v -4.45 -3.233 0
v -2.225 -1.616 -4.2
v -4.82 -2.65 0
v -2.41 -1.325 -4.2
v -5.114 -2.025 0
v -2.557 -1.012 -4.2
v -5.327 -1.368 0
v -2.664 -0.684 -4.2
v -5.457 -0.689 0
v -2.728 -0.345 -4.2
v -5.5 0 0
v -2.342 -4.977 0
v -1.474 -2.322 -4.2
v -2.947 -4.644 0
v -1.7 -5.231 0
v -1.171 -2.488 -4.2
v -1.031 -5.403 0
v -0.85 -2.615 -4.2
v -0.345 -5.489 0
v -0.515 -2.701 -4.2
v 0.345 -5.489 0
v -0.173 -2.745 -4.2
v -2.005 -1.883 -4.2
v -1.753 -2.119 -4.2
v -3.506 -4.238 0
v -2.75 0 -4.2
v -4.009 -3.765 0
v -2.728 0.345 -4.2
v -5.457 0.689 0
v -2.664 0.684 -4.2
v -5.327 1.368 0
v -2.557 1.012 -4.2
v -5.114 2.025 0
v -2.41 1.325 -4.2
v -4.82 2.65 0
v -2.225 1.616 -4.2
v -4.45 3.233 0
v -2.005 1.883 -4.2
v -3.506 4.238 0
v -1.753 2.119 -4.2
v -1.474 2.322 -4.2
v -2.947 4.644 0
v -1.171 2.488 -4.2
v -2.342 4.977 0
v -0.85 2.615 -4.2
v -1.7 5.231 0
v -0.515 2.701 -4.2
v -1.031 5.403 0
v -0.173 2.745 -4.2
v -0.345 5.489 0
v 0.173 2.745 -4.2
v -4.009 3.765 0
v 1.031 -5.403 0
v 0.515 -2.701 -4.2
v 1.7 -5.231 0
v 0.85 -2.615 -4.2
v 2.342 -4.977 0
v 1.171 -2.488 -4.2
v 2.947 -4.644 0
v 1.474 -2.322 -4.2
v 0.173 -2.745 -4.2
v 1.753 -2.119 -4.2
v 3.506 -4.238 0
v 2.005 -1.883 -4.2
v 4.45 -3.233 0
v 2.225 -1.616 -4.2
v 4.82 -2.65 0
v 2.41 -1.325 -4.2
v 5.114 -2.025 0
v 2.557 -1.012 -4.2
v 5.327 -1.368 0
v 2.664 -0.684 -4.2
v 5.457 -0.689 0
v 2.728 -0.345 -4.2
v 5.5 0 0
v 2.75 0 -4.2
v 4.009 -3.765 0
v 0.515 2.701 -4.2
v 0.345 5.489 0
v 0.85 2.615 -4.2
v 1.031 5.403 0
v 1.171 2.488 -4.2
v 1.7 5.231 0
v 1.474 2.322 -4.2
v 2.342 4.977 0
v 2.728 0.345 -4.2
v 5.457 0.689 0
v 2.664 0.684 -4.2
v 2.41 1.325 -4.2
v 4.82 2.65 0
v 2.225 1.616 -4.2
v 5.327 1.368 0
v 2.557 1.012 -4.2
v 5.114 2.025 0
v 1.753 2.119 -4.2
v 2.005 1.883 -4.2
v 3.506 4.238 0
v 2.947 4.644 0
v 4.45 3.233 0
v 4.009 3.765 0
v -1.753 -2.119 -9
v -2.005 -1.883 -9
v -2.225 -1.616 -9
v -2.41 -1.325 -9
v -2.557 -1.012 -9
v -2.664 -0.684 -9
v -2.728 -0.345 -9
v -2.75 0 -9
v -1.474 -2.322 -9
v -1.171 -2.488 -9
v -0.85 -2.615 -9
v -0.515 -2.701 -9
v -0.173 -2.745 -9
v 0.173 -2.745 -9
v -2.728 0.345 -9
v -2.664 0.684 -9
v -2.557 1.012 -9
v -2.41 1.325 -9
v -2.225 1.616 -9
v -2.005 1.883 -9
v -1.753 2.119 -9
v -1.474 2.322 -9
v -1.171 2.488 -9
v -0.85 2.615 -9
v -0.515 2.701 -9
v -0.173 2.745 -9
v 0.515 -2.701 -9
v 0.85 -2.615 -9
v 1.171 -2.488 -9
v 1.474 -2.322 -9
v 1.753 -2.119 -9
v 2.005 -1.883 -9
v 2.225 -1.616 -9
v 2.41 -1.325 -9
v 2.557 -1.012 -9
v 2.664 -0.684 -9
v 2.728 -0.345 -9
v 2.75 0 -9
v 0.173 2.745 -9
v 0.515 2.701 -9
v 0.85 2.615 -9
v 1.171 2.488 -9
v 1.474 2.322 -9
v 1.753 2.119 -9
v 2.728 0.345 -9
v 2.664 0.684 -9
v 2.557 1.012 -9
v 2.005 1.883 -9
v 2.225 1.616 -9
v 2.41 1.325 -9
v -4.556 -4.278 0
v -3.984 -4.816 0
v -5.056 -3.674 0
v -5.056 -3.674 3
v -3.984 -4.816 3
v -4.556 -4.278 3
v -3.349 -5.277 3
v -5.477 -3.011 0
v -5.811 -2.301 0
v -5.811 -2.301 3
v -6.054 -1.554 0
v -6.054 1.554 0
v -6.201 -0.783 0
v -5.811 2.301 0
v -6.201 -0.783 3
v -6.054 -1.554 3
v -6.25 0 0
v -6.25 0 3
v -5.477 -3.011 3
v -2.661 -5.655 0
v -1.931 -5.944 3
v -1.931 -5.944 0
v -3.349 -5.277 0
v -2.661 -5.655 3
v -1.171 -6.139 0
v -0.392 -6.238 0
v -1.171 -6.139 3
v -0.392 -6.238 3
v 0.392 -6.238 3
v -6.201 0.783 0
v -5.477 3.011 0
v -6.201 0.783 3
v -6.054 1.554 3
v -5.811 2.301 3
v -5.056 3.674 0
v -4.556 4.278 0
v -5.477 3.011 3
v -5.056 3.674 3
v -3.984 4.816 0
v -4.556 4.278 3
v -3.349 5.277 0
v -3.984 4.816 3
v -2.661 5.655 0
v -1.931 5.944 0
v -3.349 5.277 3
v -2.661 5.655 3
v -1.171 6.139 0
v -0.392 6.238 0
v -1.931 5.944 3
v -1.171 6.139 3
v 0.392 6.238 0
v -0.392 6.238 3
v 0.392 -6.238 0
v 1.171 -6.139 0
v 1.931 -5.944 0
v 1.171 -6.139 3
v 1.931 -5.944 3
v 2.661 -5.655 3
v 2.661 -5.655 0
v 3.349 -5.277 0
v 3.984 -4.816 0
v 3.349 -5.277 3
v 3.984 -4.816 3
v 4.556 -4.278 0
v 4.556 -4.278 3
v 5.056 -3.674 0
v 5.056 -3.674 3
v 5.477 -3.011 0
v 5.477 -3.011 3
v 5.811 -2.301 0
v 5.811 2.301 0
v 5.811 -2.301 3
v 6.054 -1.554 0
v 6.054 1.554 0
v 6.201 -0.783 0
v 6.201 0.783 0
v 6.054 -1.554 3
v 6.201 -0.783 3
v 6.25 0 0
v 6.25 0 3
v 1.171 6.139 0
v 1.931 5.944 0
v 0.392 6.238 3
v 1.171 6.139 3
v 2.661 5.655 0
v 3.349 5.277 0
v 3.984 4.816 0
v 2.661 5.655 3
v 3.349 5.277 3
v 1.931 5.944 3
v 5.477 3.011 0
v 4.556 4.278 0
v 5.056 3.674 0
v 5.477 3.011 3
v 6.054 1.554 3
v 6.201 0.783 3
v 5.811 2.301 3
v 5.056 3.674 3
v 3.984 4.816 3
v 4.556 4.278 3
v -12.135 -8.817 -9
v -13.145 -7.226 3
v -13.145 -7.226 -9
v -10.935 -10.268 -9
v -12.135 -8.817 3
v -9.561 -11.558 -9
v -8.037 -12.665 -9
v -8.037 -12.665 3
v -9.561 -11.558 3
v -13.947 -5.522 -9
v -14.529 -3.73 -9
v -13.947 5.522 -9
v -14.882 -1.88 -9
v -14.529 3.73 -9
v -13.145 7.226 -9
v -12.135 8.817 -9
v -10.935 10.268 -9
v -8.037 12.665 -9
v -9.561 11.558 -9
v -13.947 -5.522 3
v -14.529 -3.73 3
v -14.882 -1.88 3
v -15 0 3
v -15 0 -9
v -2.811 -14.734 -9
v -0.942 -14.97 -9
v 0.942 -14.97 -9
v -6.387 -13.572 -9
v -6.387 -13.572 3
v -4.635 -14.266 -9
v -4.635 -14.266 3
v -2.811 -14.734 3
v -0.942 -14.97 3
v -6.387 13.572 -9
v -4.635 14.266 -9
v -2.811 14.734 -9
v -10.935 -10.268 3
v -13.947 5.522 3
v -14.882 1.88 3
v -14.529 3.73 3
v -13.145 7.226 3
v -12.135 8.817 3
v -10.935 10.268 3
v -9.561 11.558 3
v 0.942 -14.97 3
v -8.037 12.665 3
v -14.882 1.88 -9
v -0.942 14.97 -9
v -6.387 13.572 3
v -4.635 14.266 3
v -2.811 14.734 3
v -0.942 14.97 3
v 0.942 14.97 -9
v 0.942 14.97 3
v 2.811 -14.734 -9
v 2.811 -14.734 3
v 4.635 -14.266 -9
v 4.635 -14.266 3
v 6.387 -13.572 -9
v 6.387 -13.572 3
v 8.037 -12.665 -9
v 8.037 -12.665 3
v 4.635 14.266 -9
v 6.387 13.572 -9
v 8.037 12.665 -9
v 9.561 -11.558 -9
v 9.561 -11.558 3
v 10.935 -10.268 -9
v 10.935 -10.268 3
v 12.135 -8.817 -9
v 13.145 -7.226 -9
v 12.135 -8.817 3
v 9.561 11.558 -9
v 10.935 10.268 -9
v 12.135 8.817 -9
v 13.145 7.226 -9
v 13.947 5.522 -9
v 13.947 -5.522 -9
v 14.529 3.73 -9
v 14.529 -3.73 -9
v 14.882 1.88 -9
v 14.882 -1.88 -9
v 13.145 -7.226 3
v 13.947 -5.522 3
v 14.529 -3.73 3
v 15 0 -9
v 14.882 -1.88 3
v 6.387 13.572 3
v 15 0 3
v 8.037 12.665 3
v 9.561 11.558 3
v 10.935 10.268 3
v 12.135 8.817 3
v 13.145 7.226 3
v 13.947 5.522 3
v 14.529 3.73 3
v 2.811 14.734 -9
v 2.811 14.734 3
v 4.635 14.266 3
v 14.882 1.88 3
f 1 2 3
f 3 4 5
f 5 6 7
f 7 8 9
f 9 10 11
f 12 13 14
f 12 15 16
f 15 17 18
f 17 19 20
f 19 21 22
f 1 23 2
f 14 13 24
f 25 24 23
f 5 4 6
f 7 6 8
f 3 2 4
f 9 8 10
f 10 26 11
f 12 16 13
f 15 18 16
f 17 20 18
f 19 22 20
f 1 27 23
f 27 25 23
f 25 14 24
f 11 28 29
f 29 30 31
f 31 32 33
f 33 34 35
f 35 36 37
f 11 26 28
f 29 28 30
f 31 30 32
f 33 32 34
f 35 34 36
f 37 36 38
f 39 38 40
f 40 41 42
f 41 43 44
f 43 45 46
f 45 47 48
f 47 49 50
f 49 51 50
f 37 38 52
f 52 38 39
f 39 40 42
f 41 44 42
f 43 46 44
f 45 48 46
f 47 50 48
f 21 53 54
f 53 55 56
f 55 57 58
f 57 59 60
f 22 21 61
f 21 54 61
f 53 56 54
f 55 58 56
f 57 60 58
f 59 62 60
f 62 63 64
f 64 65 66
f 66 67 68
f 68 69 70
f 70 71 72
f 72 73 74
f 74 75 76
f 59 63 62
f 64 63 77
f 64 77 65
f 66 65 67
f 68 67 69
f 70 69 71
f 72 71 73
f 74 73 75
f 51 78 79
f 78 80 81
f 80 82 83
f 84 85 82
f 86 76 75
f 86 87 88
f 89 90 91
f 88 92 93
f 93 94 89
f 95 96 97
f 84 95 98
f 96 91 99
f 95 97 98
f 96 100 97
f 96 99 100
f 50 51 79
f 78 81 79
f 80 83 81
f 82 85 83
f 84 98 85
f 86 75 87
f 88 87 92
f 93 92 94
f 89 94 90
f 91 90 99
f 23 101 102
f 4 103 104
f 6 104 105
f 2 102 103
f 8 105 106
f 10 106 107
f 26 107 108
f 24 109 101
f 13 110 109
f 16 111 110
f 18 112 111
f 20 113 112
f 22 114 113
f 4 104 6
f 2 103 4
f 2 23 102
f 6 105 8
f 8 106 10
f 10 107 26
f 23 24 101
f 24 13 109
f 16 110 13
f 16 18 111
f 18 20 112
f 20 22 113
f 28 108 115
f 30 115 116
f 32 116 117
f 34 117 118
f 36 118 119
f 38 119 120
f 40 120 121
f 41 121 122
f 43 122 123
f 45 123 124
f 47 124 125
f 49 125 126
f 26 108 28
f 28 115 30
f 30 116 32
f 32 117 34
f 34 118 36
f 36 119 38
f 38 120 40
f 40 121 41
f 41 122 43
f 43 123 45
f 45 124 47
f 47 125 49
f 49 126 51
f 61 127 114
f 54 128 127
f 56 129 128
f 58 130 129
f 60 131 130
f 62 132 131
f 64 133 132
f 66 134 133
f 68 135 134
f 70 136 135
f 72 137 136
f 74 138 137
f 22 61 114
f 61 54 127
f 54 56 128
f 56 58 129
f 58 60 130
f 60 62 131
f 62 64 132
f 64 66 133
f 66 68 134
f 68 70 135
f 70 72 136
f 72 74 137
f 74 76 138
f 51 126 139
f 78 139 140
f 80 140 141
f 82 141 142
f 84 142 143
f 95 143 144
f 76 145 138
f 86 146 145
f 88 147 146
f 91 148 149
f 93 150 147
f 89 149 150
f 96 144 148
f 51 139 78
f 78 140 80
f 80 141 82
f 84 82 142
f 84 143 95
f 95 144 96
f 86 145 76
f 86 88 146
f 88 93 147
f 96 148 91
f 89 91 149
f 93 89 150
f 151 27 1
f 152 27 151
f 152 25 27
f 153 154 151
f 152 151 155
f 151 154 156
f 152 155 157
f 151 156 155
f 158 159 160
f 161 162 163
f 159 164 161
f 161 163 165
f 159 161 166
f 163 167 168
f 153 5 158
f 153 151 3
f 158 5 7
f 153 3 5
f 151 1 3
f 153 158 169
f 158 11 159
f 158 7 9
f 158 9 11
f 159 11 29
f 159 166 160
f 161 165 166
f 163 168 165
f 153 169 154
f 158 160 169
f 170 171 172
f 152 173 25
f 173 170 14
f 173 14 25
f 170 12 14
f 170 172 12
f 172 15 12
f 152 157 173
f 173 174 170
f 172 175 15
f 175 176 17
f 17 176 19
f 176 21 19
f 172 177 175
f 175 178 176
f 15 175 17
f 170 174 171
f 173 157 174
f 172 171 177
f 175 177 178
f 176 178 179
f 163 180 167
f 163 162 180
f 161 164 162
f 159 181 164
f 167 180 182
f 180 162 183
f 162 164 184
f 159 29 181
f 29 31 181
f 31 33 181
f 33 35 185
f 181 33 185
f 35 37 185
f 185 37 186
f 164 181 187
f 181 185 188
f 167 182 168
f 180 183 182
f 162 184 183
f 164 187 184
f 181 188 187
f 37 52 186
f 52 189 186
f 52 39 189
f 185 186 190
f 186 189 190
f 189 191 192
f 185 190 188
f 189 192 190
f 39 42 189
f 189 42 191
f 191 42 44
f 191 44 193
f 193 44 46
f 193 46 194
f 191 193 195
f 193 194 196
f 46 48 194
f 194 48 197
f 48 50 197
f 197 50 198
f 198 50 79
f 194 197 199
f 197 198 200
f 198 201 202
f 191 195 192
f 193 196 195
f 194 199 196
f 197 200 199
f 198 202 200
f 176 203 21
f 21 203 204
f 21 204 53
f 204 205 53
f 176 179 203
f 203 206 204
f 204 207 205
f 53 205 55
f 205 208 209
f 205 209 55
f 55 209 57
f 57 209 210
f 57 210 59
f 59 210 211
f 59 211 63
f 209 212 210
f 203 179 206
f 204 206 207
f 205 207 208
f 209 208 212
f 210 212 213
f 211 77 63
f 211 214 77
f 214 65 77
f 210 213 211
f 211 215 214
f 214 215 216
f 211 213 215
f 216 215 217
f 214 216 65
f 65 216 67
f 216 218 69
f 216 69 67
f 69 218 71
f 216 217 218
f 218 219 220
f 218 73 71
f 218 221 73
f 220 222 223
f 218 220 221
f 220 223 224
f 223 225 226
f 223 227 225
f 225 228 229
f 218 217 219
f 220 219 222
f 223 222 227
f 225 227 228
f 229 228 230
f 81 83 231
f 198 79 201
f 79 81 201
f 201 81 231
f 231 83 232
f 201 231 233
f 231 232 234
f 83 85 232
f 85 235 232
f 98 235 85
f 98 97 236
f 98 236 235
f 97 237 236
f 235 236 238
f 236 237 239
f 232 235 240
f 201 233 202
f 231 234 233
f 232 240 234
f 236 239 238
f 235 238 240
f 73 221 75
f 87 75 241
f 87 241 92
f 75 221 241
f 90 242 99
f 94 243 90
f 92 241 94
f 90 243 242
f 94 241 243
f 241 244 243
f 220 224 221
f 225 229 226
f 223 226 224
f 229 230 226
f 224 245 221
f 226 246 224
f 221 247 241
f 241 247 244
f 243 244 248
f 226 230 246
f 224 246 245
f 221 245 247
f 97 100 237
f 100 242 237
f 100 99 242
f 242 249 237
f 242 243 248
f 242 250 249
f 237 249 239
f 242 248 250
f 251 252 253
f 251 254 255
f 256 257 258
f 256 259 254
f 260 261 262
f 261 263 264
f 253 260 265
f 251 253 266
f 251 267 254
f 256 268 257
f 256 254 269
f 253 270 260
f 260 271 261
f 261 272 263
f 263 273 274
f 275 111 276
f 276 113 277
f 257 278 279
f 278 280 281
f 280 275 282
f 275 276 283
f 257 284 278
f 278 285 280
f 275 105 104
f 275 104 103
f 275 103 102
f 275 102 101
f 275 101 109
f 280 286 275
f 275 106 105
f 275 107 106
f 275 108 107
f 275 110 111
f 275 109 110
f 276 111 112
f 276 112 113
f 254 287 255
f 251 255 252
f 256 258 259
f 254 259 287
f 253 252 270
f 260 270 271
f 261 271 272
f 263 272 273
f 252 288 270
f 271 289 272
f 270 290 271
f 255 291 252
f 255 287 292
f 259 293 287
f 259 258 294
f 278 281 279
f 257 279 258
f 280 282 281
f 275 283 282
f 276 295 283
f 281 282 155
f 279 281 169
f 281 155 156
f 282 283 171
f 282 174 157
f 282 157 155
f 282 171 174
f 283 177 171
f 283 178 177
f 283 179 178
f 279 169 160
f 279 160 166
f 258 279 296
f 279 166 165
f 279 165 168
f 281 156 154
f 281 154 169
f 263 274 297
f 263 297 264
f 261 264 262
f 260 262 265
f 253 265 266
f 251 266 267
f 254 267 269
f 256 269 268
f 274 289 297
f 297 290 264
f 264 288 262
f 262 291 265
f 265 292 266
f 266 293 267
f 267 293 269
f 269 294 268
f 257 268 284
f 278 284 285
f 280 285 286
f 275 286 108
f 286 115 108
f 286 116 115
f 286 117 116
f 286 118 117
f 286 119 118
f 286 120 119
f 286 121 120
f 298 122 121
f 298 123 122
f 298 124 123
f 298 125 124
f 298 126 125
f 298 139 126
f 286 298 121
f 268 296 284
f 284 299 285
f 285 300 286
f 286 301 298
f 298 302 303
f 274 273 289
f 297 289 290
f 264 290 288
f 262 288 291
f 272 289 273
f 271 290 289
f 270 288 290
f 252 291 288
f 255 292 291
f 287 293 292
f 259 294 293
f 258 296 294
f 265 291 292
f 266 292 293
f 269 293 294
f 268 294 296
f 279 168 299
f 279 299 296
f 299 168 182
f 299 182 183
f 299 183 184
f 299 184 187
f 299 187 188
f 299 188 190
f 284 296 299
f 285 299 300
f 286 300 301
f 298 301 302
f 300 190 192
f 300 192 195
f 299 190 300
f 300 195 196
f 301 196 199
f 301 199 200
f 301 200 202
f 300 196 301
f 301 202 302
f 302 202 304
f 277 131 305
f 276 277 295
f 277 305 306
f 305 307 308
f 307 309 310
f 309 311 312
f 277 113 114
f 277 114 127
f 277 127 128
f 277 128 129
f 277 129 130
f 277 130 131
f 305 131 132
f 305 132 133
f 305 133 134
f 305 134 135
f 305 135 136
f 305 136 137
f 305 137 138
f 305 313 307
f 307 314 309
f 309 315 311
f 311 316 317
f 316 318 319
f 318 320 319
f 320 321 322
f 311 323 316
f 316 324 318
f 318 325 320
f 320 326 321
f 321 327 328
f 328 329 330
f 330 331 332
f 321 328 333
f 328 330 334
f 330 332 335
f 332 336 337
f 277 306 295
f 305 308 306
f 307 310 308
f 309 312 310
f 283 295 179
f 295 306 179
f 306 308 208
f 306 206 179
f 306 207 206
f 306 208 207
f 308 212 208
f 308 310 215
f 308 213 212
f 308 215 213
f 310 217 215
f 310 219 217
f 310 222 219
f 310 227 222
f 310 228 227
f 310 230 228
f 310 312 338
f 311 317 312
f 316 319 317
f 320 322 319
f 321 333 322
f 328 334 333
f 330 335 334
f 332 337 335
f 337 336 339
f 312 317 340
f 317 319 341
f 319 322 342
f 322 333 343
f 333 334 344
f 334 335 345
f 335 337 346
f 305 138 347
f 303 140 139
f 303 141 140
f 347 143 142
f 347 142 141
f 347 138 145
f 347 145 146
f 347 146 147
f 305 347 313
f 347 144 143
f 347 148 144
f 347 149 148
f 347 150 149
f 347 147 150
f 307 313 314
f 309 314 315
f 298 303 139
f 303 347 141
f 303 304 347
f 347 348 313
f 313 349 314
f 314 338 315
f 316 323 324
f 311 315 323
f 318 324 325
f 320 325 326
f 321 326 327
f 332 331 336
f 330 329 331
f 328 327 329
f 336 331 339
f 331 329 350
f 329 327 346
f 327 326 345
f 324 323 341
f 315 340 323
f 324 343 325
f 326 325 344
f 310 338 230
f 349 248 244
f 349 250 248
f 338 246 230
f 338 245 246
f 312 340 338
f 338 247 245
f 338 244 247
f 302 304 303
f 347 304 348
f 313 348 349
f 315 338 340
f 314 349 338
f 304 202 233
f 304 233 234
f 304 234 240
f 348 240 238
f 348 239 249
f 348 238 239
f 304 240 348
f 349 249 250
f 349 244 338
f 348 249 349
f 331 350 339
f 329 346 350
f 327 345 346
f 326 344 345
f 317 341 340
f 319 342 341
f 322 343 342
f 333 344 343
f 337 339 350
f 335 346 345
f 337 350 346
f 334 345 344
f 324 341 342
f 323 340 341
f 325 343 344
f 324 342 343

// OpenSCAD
$fn = 50;


difference() {
	union() {
		translate(v = [0, 0, -9.0000000000]) {
			cylinder(h = 12, r = 15.0000000000);
		}
	}
	union() {
		translate(v = [0, 0, 0]) {
			rotate(a = [0, 0, 0]) {
				difference() {
					union() {
						translate(v = [0, 0, -12.0000000000]) {
							cylinder(h = 12, r = 2.2500000000);
						}
						translate(v = [0, 0, -4.2000000000]) {
							cylinder(h = 4.2000000000, r1 = 2.7500000000, r2 = 5.5000000000);
						}
						translate(v = [0, 0, -12.0000000000]) {
							cylinder(h = 12, r = 2.7500000000);
						}
						translate(v = [0, 0, -12.0000000000]) {
							cylinder(h = 12, r = 2.2500000000);
						}
					}
					union();
				}
			}
		}
		#cylinder(h = 3, r = 6.2500000000);
	}
}
